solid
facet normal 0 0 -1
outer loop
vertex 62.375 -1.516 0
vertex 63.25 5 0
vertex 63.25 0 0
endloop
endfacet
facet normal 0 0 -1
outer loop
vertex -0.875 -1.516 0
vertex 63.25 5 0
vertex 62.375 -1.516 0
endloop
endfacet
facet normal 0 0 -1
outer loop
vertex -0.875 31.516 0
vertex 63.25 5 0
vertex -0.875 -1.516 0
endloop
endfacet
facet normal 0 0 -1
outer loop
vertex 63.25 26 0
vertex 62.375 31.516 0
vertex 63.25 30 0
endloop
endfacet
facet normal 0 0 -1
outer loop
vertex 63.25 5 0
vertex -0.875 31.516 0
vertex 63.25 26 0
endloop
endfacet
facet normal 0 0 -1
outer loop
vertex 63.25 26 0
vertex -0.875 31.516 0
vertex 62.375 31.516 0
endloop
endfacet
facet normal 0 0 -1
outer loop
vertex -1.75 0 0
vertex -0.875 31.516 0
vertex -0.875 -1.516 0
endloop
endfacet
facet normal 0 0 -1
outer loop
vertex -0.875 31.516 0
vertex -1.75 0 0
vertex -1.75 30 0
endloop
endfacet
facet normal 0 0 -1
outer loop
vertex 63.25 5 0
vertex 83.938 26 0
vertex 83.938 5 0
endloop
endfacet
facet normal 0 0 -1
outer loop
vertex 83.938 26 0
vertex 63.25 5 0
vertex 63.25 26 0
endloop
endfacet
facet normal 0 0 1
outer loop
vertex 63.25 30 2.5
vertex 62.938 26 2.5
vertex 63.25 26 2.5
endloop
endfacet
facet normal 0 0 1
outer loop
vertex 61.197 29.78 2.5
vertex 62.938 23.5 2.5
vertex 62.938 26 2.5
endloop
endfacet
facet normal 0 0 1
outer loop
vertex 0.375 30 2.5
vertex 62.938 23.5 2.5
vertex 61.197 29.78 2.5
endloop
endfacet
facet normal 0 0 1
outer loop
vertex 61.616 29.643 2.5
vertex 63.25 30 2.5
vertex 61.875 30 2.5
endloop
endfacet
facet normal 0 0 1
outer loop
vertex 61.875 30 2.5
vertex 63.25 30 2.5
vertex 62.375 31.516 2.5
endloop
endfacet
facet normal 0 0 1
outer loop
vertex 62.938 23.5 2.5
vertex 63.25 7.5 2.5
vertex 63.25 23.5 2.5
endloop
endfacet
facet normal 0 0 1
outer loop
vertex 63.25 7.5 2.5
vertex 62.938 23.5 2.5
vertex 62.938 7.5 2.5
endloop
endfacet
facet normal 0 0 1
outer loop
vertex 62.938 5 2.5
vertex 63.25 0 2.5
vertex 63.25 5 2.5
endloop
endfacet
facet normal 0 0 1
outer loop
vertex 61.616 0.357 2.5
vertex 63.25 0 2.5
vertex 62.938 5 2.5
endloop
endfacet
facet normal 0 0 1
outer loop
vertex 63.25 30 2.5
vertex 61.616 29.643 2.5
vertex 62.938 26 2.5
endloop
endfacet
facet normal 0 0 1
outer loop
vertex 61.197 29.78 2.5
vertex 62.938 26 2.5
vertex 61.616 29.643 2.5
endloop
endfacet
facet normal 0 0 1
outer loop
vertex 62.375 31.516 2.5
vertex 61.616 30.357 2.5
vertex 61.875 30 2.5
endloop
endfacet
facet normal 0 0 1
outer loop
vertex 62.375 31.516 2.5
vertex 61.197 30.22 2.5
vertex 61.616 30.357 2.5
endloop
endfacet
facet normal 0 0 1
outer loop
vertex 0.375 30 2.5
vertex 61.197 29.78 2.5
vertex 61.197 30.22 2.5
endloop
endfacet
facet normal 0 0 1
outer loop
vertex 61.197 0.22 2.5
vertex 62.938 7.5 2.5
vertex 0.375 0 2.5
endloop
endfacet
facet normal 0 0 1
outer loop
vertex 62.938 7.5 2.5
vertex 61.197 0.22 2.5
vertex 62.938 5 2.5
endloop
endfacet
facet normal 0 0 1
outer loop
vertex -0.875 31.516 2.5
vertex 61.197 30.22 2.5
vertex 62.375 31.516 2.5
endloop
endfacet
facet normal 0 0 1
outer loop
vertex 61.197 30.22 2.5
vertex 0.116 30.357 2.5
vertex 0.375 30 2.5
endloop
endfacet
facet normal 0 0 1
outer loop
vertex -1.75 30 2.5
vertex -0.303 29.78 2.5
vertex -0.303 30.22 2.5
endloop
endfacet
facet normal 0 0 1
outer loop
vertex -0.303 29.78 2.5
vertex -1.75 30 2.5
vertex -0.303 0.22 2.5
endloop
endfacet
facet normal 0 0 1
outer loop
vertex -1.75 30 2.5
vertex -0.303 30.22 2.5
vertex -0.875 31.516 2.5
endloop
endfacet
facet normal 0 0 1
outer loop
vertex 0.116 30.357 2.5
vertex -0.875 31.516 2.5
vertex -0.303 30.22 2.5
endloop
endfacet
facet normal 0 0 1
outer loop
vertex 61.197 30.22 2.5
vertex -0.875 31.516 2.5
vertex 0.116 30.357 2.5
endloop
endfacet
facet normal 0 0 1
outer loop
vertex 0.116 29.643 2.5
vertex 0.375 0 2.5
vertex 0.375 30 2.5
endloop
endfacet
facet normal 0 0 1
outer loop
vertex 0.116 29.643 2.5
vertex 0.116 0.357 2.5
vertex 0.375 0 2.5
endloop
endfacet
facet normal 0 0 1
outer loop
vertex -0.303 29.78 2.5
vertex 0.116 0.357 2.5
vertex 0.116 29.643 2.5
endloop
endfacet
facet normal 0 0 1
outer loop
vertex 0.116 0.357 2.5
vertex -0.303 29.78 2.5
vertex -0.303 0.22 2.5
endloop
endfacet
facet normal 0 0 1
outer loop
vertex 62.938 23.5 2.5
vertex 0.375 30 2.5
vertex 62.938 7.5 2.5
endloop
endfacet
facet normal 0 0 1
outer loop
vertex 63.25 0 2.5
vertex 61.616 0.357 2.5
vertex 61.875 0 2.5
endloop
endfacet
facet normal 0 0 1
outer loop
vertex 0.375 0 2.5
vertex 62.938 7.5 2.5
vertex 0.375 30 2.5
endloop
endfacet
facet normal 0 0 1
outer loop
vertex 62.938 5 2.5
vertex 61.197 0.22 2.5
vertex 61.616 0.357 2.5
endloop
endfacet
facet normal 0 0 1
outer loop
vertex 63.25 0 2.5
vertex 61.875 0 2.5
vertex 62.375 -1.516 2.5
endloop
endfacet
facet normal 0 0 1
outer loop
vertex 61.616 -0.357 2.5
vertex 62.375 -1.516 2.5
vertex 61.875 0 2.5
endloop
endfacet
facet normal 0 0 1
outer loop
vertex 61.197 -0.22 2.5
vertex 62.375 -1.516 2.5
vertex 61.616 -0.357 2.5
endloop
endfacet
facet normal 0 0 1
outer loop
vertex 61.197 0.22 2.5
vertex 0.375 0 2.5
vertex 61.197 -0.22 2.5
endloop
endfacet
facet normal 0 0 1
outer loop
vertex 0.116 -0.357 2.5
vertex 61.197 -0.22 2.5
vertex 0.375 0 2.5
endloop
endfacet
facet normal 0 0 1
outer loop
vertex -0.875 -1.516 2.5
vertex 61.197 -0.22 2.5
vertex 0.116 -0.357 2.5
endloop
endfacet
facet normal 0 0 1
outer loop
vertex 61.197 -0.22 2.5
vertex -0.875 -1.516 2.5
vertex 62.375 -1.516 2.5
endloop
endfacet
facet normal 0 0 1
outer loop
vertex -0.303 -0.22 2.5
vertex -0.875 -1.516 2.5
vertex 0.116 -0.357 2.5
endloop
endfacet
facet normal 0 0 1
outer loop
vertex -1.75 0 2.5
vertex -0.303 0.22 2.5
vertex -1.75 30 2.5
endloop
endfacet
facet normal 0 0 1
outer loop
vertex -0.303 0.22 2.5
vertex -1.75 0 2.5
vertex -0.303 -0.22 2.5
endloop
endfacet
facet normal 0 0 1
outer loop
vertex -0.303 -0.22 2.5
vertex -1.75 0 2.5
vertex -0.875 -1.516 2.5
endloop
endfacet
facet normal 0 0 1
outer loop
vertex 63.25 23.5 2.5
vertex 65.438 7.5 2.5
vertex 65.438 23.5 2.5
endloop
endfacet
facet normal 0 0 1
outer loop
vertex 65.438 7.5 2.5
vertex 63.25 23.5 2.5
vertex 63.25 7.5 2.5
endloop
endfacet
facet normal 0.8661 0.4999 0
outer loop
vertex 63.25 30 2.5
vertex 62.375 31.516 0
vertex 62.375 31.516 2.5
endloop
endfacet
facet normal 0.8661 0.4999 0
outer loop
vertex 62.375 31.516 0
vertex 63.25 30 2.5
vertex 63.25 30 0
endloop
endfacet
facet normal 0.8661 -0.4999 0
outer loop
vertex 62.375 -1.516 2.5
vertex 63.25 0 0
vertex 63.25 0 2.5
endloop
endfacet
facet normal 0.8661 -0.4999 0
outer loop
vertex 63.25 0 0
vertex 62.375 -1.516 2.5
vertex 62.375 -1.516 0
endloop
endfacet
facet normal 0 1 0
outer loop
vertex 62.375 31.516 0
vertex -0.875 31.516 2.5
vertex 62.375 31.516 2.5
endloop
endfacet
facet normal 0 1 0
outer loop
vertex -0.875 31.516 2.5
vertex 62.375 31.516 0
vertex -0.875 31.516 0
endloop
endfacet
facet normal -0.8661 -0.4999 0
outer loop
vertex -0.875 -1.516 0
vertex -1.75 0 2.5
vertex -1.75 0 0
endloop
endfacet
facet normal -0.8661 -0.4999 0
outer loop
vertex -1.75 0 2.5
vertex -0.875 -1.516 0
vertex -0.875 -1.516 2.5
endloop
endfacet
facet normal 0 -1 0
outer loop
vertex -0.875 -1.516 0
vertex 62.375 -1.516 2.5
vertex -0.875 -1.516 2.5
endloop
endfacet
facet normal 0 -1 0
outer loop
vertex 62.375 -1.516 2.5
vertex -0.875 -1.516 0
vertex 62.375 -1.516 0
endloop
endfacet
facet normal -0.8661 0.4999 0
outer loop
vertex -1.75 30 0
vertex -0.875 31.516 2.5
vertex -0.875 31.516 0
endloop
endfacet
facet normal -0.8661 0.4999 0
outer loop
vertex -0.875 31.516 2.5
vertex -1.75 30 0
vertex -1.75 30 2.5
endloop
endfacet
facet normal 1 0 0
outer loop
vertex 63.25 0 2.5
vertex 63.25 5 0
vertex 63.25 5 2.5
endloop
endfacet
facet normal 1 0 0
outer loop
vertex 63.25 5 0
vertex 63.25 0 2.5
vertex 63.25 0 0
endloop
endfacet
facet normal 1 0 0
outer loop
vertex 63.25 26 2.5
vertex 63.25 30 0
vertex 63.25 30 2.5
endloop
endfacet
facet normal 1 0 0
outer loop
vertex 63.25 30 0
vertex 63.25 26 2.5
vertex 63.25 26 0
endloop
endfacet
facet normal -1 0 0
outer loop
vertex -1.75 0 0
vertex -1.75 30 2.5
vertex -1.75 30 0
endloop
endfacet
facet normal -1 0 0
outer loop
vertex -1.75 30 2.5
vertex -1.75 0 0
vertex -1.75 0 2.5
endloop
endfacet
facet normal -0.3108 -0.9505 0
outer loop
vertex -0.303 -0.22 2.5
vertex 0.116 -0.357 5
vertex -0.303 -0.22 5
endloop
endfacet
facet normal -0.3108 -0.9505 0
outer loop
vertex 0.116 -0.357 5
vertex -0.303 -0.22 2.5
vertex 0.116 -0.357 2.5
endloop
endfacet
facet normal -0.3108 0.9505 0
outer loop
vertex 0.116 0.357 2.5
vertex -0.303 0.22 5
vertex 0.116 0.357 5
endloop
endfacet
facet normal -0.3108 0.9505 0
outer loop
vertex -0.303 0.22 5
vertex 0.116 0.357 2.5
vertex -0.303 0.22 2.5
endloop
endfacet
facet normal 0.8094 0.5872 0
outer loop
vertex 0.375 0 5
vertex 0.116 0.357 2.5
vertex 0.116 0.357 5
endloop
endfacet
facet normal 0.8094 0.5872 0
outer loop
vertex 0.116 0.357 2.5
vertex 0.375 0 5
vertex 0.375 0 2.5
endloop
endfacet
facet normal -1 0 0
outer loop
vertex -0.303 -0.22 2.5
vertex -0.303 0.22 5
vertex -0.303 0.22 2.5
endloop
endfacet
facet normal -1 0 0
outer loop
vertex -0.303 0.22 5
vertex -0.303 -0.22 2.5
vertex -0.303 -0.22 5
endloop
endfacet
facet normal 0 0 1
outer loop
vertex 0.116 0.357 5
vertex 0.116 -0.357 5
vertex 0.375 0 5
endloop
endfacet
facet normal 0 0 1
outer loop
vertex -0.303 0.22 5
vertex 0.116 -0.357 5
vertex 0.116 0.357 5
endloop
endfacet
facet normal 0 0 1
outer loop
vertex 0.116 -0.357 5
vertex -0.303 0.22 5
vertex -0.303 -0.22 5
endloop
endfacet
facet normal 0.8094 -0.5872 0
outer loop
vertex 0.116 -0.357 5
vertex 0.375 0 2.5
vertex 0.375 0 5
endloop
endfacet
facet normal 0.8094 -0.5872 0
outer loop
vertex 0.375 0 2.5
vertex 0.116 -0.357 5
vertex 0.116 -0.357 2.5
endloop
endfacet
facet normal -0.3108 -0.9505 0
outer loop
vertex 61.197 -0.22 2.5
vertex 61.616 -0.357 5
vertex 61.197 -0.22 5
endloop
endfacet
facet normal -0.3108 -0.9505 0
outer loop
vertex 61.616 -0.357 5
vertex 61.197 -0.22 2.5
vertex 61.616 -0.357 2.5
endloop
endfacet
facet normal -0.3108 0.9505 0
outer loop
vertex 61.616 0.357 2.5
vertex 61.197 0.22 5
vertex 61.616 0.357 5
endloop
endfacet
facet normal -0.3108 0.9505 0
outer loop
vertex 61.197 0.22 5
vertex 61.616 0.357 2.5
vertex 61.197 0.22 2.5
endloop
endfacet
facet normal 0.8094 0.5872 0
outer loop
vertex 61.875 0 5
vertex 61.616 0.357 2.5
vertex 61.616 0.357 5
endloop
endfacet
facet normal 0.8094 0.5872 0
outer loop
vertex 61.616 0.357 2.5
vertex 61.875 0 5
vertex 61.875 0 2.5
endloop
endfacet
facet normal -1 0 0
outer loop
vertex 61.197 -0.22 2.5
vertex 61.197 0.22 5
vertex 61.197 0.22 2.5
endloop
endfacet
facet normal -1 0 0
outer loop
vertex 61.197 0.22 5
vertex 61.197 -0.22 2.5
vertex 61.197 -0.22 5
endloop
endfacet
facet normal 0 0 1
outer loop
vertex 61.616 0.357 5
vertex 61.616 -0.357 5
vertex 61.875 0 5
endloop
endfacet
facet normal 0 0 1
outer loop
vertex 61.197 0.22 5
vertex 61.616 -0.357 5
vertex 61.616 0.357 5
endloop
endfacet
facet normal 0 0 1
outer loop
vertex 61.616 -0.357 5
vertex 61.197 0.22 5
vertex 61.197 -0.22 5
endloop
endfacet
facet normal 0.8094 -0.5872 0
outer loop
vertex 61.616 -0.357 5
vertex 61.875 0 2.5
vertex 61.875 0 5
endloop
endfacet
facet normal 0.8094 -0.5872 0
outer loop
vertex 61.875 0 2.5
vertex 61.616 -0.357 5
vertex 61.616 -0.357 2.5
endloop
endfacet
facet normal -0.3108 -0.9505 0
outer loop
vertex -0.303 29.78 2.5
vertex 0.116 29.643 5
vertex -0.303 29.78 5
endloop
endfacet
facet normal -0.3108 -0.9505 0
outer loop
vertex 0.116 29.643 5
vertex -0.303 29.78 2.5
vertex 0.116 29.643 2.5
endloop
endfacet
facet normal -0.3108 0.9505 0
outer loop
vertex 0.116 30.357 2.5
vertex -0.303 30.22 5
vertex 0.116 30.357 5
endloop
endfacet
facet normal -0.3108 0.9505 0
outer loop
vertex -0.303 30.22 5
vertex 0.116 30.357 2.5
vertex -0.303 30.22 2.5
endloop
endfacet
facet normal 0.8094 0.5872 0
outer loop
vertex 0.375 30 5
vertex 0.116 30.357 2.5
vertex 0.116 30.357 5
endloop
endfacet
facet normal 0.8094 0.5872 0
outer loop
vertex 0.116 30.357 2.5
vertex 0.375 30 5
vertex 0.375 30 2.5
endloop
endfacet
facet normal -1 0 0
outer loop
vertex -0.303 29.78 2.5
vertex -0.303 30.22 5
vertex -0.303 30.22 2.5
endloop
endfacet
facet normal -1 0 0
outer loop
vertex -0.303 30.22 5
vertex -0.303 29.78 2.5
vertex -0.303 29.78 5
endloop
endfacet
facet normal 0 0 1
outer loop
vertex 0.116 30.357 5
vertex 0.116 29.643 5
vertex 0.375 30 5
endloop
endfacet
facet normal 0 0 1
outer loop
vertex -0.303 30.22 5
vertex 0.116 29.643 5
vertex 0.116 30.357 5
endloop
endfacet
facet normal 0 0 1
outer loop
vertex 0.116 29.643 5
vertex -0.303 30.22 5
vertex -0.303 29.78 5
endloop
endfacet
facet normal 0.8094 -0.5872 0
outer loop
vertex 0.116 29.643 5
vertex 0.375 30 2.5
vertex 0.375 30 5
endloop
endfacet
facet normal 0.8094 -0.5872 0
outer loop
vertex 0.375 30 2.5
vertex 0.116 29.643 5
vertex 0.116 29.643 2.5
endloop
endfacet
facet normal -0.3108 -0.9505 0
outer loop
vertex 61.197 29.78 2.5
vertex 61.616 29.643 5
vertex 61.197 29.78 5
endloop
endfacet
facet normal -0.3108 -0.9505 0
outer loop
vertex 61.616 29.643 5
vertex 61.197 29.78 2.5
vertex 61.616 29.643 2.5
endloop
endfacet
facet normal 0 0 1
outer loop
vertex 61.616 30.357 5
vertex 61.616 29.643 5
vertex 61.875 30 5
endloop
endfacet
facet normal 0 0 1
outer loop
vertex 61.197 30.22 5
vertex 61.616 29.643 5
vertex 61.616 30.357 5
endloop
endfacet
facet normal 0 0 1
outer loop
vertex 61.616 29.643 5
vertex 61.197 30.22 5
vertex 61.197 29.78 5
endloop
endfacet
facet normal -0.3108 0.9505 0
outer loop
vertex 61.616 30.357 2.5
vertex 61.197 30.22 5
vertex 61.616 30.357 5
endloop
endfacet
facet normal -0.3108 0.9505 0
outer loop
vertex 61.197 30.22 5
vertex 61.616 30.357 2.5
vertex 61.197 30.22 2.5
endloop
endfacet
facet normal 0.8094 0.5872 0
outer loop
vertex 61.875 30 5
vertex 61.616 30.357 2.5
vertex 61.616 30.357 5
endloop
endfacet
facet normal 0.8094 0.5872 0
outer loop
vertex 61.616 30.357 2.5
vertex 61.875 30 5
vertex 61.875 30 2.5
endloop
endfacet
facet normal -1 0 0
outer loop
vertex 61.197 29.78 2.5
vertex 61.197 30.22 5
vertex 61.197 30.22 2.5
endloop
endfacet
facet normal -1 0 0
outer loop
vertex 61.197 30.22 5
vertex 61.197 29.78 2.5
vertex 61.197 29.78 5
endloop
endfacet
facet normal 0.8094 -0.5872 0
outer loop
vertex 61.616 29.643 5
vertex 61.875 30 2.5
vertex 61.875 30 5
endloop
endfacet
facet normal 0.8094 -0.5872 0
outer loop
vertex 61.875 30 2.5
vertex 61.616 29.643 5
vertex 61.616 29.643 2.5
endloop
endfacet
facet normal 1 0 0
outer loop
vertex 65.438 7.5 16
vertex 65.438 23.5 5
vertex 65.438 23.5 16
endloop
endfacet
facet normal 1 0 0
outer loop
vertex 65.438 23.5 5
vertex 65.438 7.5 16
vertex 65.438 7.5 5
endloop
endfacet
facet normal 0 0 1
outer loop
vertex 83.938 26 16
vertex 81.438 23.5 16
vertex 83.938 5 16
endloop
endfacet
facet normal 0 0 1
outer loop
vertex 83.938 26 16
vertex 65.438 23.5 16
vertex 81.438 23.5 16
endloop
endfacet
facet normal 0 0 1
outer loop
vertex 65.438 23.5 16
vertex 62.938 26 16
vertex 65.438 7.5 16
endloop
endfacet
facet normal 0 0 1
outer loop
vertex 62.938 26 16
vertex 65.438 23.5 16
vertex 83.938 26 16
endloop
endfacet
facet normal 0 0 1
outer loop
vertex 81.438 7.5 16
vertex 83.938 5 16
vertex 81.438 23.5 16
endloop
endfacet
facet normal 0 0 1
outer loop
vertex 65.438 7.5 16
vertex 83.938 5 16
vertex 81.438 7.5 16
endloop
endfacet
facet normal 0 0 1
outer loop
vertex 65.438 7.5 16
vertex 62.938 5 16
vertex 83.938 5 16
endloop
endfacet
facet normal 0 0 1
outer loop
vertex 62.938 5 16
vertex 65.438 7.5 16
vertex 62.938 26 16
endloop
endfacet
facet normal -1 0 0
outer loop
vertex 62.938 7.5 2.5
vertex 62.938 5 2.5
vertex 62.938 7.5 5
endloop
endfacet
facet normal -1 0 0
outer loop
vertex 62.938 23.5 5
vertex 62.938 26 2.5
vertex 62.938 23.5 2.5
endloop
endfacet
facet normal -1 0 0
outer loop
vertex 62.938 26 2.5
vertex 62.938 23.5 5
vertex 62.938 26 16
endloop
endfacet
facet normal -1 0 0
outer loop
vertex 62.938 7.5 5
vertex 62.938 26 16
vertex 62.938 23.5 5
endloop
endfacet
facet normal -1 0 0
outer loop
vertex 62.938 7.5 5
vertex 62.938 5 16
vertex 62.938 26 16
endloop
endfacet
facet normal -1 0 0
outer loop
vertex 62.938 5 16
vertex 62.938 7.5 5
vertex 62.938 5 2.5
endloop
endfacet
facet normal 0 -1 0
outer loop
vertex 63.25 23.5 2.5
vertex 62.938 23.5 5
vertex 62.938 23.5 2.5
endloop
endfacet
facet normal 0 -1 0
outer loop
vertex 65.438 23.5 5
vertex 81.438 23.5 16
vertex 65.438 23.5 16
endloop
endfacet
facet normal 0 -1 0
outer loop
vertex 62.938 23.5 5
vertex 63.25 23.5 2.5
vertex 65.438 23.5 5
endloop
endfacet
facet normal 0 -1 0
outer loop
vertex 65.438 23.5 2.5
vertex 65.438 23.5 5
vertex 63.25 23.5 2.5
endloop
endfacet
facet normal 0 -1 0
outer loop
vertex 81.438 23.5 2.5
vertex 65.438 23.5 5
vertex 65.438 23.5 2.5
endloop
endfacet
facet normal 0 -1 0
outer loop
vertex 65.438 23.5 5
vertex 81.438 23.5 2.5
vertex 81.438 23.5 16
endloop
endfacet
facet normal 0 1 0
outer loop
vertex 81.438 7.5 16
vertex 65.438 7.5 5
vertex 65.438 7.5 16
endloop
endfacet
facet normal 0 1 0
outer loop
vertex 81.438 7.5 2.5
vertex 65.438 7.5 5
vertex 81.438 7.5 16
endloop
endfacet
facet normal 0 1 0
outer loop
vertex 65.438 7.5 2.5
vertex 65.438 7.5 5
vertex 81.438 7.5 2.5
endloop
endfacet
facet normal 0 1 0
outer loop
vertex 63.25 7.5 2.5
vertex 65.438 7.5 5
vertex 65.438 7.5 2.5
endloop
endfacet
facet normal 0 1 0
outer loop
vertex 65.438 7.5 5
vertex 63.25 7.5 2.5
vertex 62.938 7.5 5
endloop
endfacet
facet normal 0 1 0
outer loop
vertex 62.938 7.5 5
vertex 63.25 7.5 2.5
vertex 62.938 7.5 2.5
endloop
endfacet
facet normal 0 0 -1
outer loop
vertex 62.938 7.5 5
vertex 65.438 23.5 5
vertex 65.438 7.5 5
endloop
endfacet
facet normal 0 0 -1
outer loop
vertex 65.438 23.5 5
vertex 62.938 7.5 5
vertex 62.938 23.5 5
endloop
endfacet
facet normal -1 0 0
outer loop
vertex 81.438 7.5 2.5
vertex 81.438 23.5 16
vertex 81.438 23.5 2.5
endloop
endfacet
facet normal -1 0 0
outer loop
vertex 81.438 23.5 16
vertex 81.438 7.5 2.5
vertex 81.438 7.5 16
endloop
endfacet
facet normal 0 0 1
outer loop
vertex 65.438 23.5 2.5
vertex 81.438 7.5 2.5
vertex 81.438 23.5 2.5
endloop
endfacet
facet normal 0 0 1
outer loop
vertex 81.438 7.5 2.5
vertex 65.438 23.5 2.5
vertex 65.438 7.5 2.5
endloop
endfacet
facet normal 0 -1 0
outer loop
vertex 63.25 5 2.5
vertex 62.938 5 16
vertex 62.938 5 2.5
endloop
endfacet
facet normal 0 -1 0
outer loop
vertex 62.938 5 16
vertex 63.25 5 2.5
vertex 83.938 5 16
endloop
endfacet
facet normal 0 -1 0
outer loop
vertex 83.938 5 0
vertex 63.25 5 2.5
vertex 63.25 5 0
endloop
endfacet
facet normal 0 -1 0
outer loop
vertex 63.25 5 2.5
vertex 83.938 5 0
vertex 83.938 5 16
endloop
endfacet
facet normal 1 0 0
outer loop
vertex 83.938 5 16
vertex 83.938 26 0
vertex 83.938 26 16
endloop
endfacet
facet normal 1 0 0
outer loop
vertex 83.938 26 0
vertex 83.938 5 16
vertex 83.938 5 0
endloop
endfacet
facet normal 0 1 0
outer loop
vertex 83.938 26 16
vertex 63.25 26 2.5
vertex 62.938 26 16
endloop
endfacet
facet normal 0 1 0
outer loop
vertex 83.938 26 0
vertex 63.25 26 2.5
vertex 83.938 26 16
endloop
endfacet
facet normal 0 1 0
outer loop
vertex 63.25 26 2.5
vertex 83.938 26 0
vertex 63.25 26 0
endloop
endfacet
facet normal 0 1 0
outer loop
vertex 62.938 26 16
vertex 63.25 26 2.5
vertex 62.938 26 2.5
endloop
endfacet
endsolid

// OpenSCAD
//Raspberry Pi dimensions
width  = 30;
length = 65;

holes_width = 23;
holes_length = 58;
holes_diameter = 2.75;
corner = 3.5;
holes_margin = (corner - holes_diameter)/2;

corrected_length = length - corner;

wall  = 2.5;
tower_width = 16;

module raspi_platform() {
    //platform
    hull() {
    translate([0, 0, 0 ] )
        cylinder( d = corner, h = wall );
    translate([corrected_length, 0, 0 ] )
        cylinder( d = corner, h = wall );
    translate([0, width, 0 ] )
        cylinder( d = corner, h = wall );
    translate([corrected_length, width, 0 ] )
        cylinder( d = corner, h = wall );
    }
    //pins
    translate([0, 0, wall] )
        cylinder( r = holes_margin, h = wall );
    translate([corrected_length, 0, wall] )
        cylinder( r = holes_margin, h = wall );
    translate([0, width, wall] )
        cylinder( r = holes_margin, h = wall );
    translate([corrected_length, width, wall] )
        cylinder( r = holes_margin, h = wall );
}

module tower_mount() {
    color( [ 1, 1, 1 ] )
    cube([tower_width, tower_width, wall ] );
    
    color([ 1, 0, 0 ])
    translate( [0, -wall, 0 ] )
        cube( [ tower_width, wall, tower_width] );
    
    color([ 0, 1, 0 ])
    translate( [-wall, 0, 0 ] )
        difference() {
            cube( [ wall, tower_width, tower_width] );
            translate([-wall, 0, wall])
                cube( [3*wall, tower_width, wall]);
        }
    color([ 0, 0, 1 ])
    translate( [tower_width, 0, 0 ] )
        cube( [ wall, tower_width, tower_width] );
    
    color([ 1, 1, 0 ])
    translate( [0, tower_width, 0 ] )
        cube( [ tower_width+0.5*wall, wall, tower_width] );

    translate( [-wall, -wall, 0 ] )
        cube([ wall, wall, tower_width ] );

    translate( [-wall, tower_width, 0 ] )
        cube([ wall, wall, tower_width ] );

    translate( [tower_width, -wall, 0 ] )
        cube([ wall, wall, tower_width ] );

    translate( [tower_width, tower_width, 0 ] )
        cube([ wall, wall, tower_width ] );

}

raspi_platform();
translate( [length+(1/8)*corner, width*(1/4), 0 ] )
    tower_mount();
